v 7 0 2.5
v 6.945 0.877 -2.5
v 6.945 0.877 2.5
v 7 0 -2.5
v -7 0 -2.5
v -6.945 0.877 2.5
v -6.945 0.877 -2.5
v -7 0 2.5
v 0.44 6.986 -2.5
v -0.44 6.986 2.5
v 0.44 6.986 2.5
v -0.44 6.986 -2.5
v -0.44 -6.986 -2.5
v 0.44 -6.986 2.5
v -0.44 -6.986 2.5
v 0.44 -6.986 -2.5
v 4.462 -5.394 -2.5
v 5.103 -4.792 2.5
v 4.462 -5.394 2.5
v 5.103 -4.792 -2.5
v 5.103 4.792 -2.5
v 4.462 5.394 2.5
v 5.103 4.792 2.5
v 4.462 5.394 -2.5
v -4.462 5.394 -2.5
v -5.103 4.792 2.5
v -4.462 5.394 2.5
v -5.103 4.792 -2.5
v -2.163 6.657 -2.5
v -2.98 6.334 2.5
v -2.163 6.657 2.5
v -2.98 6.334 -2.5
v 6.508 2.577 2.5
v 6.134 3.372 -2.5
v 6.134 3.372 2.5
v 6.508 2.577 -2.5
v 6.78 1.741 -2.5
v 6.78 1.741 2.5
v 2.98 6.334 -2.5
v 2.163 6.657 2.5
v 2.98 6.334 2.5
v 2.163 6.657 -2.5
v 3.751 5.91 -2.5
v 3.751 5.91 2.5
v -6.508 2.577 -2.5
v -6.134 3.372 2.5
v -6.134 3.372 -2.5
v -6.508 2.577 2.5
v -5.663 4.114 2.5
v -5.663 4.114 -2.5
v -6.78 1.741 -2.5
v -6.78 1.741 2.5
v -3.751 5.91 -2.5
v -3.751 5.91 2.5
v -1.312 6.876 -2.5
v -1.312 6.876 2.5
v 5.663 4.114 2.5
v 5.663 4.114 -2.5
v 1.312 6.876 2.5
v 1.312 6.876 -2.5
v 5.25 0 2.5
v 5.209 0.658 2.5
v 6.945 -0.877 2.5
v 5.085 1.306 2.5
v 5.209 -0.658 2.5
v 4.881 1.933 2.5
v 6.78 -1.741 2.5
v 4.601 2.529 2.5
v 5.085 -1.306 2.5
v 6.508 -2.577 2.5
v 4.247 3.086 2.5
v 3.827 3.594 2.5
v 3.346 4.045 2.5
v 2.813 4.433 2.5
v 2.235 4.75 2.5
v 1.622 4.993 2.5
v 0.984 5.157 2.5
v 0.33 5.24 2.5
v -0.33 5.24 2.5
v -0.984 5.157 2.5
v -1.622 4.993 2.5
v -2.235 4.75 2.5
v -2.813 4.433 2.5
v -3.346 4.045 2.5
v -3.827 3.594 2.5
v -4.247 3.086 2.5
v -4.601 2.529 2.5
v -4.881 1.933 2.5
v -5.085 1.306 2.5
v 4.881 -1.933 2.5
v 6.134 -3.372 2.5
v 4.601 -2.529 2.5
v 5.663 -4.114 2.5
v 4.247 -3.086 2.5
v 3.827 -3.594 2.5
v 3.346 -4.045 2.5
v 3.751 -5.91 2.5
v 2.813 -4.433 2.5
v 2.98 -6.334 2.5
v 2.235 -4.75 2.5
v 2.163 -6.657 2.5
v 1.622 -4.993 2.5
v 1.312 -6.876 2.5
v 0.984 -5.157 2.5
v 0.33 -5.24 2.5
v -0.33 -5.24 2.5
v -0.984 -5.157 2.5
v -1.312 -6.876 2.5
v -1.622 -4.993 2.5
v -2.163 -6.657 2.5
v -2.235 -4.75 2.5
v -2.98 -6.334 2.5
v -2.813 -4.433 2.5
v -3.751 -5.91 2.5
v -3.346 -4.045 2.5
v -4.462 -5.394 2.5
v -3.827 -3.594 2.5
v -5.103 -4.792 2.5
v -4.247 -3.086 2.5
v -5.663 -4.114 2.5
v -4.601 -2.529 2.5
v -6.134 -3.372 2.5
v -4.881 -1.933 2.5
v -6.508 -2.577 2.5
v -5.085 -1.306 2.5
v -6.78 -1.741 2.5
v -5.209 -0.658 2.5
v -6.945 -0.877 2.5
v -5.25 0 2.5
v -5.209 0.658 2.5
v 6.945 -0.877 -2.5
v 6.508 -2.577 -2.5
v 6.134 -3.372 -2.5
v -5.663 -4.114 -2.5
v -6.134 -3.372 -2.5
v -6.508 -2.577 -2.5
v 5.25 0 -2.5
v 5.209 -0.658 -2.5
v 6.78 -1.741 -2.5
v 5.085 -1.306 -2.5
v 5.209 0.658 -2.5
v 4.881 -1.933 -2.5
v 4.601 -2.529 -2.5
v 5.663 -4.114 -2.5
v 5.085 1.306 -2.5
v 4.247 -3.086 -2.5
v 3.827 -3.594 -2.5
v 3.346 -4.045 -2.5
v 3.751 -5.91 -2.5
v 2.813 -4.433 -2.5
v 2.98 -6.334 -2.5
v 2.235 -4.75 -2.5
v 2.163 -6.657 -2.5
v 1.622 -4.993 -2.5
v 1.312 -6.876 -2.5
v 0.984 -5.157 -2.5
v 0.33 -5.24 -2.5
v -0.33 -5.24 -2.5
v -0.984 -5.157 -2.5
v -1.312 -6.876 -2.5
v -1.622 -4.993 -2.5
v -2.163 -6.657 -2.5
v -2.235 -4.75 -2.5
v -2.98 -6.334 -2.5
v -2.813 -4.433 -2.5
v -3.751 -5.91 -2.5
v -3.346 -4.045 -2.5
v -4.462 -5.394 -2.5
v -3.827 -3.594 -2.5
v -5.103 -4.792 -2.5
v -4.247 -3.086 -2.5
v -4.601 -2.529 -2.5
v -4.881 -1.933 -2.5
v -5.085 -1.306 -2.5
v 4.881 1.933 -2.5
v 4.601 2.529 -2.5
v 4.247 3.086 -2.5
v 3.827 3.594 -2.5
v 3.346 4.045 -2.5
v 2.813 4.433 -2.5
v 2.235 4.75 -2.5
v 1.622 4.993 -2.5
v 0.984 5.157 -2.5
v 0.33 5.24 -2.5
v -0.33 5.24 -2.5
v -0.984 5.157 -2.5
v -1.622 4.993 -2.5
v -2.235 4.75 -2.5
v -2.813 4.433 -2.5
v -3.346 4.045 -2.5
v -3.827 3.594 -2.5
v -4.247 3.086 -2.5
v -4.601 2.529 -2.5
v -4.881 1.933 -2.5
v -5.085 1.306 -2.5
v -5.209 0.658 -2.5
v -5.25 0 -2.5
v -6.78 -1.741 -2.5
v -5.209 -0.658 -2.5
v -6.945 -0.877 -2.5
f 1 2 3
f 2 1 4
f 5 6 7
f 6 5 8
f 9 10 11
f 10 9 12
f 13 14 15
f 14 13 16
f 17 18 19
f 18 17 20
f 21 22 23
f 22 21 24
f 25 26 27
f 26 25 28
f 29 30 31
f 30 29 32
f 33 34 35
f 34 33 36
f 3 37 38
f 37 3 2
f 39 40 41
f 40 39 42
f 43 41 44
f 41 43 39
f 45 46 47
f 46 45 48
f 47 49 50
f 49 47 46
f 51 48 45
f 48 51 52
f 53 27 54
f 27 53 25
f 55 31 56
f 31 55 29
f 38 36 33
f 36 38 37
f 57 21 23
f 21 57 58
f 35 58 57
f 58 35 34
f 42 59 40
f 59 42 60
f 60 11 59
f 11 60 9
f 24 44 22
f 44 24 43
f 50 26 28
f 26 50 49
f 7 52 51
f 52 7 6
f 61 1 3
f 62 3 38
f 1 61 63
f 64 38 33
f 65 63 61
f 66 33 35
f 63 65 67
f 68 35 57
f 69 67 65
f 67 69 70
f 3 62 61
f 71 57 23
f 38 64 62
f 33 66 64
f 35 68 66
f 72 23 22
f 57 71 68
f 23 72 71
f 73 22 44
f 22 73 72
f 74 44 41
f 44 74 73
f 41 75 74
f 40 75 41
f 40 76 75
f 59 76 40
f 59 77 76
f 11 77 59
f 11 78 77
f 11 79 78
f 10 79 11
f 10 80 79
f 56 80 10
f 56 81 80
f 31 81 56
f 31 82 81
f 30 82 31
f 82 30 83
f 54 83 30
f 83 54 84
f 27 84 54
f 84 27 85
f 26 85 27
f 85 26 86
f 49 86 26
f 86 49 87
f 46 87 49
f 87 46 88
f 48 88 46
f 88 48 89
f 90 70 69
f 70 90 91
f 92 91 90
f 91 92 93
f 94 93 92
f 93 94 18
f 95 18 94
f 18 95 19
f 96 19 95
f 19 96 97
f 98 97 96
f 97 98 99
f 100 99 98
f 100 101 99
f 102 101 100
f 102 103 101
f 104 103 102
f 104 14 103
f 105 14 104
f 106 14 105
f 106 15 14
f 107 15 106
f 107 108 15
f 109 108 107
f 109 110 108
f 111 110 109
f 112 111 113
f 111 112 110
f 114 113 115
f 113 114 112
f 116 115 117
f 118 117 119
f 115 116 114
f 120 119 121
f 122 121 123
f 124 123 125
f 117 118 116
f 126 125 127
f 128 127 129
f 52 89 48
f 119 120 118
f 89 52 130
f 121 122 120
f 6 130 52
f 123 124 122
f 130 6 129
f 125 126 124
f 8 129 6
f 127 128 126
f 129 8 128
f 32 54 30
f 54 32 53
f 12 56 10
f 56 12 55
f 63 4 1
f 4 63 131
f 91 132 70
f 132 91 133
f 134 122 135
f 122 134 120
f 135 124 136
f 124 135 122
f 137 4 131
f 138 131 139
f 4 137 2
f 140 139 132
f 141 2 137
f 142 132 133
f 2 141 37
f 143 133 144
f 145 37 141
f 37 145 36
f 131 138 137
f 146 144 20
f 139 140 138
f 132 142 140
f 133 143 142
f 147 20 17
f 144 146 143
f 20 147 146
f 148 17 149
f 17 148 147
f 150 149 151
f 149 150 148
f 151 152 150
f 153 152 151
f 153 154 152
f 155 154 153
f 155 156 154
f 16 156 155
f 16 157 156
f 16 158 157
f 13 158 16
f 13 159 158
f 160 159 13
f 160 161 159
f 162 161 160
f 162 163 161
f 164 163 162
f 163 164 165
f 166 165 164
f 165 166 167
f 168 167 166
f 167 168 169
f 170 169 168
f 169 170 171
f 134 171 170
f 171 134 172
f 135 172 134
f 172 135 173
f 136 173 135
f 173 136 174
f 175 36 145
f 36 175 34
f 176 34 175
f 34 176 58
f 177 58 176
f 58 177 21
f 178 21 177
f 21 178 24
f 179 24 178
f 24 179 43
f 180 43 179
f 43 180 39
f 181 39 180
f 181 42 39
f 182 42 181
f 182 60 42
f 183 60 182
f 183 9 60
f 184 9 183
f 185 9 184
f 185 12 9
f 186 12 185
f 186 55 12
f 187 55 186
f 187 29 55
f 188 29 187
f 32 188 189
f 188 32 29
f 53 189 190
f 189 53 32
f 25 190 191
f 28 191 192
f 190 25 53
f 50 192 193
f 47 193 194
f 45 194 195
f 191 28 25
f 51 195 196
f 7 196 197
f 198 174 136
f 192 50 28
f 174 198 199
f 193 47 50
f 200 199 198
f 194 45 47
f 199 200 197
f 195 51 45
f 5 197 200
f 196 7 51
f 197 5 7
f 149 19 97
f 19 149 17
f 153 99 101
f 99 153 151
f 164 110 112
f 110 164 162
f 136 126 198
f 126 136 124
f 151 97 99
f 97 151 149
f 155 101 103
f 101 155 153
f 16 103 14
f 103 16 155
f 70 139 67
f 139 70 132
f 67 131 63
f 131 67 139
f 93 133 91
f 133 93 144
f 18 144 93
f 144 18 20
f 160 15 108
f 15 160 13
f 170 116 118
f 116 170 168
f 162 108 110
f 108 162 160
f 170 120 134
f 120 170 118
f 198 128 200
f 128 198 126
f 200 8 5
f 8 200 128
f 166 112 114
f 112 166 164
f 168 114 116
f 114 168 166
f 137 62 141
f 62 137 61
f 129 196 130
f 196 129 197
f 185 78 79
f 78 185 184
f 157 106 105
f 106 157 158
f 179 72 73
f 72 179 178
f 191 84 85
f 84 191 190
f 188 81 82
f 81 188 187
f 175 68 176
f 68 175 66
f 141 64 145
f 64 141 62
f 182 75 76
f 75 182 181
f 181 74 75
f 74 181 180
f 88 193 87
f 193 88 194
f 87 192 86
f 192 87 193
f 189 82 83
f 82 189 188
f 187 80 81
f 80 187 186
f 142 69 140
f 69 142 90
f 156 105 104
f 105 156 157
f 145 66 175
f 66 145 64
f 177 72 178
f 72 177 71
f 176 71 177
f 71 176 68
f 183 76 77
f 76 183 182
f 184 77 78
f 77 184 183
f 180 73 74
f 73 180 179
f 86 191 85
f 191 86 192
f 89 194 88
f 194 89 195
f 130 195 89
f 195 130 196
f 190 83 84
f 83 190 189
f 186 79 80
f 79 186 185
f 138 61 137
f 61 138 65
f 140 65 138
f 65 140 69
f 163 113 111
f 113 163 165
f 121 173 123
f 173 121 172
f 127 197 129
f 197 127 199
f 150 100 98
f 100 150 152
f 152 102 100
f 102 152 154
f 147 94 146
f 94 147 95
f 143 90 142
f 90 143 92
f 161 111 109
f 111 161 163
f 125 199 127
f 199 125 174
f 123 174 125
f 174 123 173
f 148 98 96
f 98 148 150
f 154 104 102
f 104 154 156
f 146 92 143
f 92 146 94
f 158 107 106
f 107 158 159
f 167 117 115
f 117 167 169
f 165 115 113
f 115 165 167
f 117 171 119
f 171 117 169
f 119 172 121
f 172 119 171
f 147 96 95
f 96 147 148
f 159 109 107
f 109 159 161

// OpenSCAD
$fn = 50;


difference() {
	union() {
		translate(v = [0, 0, -2.5000000000]) {
			cylinder(h = 5, r = 7.0000000000);
		}
	}
	union() {
		translate(v = [0, 0, -100.0000000000]) {
			cylinder(h = 200, r = 5.2500000000);
		}
	}
}
